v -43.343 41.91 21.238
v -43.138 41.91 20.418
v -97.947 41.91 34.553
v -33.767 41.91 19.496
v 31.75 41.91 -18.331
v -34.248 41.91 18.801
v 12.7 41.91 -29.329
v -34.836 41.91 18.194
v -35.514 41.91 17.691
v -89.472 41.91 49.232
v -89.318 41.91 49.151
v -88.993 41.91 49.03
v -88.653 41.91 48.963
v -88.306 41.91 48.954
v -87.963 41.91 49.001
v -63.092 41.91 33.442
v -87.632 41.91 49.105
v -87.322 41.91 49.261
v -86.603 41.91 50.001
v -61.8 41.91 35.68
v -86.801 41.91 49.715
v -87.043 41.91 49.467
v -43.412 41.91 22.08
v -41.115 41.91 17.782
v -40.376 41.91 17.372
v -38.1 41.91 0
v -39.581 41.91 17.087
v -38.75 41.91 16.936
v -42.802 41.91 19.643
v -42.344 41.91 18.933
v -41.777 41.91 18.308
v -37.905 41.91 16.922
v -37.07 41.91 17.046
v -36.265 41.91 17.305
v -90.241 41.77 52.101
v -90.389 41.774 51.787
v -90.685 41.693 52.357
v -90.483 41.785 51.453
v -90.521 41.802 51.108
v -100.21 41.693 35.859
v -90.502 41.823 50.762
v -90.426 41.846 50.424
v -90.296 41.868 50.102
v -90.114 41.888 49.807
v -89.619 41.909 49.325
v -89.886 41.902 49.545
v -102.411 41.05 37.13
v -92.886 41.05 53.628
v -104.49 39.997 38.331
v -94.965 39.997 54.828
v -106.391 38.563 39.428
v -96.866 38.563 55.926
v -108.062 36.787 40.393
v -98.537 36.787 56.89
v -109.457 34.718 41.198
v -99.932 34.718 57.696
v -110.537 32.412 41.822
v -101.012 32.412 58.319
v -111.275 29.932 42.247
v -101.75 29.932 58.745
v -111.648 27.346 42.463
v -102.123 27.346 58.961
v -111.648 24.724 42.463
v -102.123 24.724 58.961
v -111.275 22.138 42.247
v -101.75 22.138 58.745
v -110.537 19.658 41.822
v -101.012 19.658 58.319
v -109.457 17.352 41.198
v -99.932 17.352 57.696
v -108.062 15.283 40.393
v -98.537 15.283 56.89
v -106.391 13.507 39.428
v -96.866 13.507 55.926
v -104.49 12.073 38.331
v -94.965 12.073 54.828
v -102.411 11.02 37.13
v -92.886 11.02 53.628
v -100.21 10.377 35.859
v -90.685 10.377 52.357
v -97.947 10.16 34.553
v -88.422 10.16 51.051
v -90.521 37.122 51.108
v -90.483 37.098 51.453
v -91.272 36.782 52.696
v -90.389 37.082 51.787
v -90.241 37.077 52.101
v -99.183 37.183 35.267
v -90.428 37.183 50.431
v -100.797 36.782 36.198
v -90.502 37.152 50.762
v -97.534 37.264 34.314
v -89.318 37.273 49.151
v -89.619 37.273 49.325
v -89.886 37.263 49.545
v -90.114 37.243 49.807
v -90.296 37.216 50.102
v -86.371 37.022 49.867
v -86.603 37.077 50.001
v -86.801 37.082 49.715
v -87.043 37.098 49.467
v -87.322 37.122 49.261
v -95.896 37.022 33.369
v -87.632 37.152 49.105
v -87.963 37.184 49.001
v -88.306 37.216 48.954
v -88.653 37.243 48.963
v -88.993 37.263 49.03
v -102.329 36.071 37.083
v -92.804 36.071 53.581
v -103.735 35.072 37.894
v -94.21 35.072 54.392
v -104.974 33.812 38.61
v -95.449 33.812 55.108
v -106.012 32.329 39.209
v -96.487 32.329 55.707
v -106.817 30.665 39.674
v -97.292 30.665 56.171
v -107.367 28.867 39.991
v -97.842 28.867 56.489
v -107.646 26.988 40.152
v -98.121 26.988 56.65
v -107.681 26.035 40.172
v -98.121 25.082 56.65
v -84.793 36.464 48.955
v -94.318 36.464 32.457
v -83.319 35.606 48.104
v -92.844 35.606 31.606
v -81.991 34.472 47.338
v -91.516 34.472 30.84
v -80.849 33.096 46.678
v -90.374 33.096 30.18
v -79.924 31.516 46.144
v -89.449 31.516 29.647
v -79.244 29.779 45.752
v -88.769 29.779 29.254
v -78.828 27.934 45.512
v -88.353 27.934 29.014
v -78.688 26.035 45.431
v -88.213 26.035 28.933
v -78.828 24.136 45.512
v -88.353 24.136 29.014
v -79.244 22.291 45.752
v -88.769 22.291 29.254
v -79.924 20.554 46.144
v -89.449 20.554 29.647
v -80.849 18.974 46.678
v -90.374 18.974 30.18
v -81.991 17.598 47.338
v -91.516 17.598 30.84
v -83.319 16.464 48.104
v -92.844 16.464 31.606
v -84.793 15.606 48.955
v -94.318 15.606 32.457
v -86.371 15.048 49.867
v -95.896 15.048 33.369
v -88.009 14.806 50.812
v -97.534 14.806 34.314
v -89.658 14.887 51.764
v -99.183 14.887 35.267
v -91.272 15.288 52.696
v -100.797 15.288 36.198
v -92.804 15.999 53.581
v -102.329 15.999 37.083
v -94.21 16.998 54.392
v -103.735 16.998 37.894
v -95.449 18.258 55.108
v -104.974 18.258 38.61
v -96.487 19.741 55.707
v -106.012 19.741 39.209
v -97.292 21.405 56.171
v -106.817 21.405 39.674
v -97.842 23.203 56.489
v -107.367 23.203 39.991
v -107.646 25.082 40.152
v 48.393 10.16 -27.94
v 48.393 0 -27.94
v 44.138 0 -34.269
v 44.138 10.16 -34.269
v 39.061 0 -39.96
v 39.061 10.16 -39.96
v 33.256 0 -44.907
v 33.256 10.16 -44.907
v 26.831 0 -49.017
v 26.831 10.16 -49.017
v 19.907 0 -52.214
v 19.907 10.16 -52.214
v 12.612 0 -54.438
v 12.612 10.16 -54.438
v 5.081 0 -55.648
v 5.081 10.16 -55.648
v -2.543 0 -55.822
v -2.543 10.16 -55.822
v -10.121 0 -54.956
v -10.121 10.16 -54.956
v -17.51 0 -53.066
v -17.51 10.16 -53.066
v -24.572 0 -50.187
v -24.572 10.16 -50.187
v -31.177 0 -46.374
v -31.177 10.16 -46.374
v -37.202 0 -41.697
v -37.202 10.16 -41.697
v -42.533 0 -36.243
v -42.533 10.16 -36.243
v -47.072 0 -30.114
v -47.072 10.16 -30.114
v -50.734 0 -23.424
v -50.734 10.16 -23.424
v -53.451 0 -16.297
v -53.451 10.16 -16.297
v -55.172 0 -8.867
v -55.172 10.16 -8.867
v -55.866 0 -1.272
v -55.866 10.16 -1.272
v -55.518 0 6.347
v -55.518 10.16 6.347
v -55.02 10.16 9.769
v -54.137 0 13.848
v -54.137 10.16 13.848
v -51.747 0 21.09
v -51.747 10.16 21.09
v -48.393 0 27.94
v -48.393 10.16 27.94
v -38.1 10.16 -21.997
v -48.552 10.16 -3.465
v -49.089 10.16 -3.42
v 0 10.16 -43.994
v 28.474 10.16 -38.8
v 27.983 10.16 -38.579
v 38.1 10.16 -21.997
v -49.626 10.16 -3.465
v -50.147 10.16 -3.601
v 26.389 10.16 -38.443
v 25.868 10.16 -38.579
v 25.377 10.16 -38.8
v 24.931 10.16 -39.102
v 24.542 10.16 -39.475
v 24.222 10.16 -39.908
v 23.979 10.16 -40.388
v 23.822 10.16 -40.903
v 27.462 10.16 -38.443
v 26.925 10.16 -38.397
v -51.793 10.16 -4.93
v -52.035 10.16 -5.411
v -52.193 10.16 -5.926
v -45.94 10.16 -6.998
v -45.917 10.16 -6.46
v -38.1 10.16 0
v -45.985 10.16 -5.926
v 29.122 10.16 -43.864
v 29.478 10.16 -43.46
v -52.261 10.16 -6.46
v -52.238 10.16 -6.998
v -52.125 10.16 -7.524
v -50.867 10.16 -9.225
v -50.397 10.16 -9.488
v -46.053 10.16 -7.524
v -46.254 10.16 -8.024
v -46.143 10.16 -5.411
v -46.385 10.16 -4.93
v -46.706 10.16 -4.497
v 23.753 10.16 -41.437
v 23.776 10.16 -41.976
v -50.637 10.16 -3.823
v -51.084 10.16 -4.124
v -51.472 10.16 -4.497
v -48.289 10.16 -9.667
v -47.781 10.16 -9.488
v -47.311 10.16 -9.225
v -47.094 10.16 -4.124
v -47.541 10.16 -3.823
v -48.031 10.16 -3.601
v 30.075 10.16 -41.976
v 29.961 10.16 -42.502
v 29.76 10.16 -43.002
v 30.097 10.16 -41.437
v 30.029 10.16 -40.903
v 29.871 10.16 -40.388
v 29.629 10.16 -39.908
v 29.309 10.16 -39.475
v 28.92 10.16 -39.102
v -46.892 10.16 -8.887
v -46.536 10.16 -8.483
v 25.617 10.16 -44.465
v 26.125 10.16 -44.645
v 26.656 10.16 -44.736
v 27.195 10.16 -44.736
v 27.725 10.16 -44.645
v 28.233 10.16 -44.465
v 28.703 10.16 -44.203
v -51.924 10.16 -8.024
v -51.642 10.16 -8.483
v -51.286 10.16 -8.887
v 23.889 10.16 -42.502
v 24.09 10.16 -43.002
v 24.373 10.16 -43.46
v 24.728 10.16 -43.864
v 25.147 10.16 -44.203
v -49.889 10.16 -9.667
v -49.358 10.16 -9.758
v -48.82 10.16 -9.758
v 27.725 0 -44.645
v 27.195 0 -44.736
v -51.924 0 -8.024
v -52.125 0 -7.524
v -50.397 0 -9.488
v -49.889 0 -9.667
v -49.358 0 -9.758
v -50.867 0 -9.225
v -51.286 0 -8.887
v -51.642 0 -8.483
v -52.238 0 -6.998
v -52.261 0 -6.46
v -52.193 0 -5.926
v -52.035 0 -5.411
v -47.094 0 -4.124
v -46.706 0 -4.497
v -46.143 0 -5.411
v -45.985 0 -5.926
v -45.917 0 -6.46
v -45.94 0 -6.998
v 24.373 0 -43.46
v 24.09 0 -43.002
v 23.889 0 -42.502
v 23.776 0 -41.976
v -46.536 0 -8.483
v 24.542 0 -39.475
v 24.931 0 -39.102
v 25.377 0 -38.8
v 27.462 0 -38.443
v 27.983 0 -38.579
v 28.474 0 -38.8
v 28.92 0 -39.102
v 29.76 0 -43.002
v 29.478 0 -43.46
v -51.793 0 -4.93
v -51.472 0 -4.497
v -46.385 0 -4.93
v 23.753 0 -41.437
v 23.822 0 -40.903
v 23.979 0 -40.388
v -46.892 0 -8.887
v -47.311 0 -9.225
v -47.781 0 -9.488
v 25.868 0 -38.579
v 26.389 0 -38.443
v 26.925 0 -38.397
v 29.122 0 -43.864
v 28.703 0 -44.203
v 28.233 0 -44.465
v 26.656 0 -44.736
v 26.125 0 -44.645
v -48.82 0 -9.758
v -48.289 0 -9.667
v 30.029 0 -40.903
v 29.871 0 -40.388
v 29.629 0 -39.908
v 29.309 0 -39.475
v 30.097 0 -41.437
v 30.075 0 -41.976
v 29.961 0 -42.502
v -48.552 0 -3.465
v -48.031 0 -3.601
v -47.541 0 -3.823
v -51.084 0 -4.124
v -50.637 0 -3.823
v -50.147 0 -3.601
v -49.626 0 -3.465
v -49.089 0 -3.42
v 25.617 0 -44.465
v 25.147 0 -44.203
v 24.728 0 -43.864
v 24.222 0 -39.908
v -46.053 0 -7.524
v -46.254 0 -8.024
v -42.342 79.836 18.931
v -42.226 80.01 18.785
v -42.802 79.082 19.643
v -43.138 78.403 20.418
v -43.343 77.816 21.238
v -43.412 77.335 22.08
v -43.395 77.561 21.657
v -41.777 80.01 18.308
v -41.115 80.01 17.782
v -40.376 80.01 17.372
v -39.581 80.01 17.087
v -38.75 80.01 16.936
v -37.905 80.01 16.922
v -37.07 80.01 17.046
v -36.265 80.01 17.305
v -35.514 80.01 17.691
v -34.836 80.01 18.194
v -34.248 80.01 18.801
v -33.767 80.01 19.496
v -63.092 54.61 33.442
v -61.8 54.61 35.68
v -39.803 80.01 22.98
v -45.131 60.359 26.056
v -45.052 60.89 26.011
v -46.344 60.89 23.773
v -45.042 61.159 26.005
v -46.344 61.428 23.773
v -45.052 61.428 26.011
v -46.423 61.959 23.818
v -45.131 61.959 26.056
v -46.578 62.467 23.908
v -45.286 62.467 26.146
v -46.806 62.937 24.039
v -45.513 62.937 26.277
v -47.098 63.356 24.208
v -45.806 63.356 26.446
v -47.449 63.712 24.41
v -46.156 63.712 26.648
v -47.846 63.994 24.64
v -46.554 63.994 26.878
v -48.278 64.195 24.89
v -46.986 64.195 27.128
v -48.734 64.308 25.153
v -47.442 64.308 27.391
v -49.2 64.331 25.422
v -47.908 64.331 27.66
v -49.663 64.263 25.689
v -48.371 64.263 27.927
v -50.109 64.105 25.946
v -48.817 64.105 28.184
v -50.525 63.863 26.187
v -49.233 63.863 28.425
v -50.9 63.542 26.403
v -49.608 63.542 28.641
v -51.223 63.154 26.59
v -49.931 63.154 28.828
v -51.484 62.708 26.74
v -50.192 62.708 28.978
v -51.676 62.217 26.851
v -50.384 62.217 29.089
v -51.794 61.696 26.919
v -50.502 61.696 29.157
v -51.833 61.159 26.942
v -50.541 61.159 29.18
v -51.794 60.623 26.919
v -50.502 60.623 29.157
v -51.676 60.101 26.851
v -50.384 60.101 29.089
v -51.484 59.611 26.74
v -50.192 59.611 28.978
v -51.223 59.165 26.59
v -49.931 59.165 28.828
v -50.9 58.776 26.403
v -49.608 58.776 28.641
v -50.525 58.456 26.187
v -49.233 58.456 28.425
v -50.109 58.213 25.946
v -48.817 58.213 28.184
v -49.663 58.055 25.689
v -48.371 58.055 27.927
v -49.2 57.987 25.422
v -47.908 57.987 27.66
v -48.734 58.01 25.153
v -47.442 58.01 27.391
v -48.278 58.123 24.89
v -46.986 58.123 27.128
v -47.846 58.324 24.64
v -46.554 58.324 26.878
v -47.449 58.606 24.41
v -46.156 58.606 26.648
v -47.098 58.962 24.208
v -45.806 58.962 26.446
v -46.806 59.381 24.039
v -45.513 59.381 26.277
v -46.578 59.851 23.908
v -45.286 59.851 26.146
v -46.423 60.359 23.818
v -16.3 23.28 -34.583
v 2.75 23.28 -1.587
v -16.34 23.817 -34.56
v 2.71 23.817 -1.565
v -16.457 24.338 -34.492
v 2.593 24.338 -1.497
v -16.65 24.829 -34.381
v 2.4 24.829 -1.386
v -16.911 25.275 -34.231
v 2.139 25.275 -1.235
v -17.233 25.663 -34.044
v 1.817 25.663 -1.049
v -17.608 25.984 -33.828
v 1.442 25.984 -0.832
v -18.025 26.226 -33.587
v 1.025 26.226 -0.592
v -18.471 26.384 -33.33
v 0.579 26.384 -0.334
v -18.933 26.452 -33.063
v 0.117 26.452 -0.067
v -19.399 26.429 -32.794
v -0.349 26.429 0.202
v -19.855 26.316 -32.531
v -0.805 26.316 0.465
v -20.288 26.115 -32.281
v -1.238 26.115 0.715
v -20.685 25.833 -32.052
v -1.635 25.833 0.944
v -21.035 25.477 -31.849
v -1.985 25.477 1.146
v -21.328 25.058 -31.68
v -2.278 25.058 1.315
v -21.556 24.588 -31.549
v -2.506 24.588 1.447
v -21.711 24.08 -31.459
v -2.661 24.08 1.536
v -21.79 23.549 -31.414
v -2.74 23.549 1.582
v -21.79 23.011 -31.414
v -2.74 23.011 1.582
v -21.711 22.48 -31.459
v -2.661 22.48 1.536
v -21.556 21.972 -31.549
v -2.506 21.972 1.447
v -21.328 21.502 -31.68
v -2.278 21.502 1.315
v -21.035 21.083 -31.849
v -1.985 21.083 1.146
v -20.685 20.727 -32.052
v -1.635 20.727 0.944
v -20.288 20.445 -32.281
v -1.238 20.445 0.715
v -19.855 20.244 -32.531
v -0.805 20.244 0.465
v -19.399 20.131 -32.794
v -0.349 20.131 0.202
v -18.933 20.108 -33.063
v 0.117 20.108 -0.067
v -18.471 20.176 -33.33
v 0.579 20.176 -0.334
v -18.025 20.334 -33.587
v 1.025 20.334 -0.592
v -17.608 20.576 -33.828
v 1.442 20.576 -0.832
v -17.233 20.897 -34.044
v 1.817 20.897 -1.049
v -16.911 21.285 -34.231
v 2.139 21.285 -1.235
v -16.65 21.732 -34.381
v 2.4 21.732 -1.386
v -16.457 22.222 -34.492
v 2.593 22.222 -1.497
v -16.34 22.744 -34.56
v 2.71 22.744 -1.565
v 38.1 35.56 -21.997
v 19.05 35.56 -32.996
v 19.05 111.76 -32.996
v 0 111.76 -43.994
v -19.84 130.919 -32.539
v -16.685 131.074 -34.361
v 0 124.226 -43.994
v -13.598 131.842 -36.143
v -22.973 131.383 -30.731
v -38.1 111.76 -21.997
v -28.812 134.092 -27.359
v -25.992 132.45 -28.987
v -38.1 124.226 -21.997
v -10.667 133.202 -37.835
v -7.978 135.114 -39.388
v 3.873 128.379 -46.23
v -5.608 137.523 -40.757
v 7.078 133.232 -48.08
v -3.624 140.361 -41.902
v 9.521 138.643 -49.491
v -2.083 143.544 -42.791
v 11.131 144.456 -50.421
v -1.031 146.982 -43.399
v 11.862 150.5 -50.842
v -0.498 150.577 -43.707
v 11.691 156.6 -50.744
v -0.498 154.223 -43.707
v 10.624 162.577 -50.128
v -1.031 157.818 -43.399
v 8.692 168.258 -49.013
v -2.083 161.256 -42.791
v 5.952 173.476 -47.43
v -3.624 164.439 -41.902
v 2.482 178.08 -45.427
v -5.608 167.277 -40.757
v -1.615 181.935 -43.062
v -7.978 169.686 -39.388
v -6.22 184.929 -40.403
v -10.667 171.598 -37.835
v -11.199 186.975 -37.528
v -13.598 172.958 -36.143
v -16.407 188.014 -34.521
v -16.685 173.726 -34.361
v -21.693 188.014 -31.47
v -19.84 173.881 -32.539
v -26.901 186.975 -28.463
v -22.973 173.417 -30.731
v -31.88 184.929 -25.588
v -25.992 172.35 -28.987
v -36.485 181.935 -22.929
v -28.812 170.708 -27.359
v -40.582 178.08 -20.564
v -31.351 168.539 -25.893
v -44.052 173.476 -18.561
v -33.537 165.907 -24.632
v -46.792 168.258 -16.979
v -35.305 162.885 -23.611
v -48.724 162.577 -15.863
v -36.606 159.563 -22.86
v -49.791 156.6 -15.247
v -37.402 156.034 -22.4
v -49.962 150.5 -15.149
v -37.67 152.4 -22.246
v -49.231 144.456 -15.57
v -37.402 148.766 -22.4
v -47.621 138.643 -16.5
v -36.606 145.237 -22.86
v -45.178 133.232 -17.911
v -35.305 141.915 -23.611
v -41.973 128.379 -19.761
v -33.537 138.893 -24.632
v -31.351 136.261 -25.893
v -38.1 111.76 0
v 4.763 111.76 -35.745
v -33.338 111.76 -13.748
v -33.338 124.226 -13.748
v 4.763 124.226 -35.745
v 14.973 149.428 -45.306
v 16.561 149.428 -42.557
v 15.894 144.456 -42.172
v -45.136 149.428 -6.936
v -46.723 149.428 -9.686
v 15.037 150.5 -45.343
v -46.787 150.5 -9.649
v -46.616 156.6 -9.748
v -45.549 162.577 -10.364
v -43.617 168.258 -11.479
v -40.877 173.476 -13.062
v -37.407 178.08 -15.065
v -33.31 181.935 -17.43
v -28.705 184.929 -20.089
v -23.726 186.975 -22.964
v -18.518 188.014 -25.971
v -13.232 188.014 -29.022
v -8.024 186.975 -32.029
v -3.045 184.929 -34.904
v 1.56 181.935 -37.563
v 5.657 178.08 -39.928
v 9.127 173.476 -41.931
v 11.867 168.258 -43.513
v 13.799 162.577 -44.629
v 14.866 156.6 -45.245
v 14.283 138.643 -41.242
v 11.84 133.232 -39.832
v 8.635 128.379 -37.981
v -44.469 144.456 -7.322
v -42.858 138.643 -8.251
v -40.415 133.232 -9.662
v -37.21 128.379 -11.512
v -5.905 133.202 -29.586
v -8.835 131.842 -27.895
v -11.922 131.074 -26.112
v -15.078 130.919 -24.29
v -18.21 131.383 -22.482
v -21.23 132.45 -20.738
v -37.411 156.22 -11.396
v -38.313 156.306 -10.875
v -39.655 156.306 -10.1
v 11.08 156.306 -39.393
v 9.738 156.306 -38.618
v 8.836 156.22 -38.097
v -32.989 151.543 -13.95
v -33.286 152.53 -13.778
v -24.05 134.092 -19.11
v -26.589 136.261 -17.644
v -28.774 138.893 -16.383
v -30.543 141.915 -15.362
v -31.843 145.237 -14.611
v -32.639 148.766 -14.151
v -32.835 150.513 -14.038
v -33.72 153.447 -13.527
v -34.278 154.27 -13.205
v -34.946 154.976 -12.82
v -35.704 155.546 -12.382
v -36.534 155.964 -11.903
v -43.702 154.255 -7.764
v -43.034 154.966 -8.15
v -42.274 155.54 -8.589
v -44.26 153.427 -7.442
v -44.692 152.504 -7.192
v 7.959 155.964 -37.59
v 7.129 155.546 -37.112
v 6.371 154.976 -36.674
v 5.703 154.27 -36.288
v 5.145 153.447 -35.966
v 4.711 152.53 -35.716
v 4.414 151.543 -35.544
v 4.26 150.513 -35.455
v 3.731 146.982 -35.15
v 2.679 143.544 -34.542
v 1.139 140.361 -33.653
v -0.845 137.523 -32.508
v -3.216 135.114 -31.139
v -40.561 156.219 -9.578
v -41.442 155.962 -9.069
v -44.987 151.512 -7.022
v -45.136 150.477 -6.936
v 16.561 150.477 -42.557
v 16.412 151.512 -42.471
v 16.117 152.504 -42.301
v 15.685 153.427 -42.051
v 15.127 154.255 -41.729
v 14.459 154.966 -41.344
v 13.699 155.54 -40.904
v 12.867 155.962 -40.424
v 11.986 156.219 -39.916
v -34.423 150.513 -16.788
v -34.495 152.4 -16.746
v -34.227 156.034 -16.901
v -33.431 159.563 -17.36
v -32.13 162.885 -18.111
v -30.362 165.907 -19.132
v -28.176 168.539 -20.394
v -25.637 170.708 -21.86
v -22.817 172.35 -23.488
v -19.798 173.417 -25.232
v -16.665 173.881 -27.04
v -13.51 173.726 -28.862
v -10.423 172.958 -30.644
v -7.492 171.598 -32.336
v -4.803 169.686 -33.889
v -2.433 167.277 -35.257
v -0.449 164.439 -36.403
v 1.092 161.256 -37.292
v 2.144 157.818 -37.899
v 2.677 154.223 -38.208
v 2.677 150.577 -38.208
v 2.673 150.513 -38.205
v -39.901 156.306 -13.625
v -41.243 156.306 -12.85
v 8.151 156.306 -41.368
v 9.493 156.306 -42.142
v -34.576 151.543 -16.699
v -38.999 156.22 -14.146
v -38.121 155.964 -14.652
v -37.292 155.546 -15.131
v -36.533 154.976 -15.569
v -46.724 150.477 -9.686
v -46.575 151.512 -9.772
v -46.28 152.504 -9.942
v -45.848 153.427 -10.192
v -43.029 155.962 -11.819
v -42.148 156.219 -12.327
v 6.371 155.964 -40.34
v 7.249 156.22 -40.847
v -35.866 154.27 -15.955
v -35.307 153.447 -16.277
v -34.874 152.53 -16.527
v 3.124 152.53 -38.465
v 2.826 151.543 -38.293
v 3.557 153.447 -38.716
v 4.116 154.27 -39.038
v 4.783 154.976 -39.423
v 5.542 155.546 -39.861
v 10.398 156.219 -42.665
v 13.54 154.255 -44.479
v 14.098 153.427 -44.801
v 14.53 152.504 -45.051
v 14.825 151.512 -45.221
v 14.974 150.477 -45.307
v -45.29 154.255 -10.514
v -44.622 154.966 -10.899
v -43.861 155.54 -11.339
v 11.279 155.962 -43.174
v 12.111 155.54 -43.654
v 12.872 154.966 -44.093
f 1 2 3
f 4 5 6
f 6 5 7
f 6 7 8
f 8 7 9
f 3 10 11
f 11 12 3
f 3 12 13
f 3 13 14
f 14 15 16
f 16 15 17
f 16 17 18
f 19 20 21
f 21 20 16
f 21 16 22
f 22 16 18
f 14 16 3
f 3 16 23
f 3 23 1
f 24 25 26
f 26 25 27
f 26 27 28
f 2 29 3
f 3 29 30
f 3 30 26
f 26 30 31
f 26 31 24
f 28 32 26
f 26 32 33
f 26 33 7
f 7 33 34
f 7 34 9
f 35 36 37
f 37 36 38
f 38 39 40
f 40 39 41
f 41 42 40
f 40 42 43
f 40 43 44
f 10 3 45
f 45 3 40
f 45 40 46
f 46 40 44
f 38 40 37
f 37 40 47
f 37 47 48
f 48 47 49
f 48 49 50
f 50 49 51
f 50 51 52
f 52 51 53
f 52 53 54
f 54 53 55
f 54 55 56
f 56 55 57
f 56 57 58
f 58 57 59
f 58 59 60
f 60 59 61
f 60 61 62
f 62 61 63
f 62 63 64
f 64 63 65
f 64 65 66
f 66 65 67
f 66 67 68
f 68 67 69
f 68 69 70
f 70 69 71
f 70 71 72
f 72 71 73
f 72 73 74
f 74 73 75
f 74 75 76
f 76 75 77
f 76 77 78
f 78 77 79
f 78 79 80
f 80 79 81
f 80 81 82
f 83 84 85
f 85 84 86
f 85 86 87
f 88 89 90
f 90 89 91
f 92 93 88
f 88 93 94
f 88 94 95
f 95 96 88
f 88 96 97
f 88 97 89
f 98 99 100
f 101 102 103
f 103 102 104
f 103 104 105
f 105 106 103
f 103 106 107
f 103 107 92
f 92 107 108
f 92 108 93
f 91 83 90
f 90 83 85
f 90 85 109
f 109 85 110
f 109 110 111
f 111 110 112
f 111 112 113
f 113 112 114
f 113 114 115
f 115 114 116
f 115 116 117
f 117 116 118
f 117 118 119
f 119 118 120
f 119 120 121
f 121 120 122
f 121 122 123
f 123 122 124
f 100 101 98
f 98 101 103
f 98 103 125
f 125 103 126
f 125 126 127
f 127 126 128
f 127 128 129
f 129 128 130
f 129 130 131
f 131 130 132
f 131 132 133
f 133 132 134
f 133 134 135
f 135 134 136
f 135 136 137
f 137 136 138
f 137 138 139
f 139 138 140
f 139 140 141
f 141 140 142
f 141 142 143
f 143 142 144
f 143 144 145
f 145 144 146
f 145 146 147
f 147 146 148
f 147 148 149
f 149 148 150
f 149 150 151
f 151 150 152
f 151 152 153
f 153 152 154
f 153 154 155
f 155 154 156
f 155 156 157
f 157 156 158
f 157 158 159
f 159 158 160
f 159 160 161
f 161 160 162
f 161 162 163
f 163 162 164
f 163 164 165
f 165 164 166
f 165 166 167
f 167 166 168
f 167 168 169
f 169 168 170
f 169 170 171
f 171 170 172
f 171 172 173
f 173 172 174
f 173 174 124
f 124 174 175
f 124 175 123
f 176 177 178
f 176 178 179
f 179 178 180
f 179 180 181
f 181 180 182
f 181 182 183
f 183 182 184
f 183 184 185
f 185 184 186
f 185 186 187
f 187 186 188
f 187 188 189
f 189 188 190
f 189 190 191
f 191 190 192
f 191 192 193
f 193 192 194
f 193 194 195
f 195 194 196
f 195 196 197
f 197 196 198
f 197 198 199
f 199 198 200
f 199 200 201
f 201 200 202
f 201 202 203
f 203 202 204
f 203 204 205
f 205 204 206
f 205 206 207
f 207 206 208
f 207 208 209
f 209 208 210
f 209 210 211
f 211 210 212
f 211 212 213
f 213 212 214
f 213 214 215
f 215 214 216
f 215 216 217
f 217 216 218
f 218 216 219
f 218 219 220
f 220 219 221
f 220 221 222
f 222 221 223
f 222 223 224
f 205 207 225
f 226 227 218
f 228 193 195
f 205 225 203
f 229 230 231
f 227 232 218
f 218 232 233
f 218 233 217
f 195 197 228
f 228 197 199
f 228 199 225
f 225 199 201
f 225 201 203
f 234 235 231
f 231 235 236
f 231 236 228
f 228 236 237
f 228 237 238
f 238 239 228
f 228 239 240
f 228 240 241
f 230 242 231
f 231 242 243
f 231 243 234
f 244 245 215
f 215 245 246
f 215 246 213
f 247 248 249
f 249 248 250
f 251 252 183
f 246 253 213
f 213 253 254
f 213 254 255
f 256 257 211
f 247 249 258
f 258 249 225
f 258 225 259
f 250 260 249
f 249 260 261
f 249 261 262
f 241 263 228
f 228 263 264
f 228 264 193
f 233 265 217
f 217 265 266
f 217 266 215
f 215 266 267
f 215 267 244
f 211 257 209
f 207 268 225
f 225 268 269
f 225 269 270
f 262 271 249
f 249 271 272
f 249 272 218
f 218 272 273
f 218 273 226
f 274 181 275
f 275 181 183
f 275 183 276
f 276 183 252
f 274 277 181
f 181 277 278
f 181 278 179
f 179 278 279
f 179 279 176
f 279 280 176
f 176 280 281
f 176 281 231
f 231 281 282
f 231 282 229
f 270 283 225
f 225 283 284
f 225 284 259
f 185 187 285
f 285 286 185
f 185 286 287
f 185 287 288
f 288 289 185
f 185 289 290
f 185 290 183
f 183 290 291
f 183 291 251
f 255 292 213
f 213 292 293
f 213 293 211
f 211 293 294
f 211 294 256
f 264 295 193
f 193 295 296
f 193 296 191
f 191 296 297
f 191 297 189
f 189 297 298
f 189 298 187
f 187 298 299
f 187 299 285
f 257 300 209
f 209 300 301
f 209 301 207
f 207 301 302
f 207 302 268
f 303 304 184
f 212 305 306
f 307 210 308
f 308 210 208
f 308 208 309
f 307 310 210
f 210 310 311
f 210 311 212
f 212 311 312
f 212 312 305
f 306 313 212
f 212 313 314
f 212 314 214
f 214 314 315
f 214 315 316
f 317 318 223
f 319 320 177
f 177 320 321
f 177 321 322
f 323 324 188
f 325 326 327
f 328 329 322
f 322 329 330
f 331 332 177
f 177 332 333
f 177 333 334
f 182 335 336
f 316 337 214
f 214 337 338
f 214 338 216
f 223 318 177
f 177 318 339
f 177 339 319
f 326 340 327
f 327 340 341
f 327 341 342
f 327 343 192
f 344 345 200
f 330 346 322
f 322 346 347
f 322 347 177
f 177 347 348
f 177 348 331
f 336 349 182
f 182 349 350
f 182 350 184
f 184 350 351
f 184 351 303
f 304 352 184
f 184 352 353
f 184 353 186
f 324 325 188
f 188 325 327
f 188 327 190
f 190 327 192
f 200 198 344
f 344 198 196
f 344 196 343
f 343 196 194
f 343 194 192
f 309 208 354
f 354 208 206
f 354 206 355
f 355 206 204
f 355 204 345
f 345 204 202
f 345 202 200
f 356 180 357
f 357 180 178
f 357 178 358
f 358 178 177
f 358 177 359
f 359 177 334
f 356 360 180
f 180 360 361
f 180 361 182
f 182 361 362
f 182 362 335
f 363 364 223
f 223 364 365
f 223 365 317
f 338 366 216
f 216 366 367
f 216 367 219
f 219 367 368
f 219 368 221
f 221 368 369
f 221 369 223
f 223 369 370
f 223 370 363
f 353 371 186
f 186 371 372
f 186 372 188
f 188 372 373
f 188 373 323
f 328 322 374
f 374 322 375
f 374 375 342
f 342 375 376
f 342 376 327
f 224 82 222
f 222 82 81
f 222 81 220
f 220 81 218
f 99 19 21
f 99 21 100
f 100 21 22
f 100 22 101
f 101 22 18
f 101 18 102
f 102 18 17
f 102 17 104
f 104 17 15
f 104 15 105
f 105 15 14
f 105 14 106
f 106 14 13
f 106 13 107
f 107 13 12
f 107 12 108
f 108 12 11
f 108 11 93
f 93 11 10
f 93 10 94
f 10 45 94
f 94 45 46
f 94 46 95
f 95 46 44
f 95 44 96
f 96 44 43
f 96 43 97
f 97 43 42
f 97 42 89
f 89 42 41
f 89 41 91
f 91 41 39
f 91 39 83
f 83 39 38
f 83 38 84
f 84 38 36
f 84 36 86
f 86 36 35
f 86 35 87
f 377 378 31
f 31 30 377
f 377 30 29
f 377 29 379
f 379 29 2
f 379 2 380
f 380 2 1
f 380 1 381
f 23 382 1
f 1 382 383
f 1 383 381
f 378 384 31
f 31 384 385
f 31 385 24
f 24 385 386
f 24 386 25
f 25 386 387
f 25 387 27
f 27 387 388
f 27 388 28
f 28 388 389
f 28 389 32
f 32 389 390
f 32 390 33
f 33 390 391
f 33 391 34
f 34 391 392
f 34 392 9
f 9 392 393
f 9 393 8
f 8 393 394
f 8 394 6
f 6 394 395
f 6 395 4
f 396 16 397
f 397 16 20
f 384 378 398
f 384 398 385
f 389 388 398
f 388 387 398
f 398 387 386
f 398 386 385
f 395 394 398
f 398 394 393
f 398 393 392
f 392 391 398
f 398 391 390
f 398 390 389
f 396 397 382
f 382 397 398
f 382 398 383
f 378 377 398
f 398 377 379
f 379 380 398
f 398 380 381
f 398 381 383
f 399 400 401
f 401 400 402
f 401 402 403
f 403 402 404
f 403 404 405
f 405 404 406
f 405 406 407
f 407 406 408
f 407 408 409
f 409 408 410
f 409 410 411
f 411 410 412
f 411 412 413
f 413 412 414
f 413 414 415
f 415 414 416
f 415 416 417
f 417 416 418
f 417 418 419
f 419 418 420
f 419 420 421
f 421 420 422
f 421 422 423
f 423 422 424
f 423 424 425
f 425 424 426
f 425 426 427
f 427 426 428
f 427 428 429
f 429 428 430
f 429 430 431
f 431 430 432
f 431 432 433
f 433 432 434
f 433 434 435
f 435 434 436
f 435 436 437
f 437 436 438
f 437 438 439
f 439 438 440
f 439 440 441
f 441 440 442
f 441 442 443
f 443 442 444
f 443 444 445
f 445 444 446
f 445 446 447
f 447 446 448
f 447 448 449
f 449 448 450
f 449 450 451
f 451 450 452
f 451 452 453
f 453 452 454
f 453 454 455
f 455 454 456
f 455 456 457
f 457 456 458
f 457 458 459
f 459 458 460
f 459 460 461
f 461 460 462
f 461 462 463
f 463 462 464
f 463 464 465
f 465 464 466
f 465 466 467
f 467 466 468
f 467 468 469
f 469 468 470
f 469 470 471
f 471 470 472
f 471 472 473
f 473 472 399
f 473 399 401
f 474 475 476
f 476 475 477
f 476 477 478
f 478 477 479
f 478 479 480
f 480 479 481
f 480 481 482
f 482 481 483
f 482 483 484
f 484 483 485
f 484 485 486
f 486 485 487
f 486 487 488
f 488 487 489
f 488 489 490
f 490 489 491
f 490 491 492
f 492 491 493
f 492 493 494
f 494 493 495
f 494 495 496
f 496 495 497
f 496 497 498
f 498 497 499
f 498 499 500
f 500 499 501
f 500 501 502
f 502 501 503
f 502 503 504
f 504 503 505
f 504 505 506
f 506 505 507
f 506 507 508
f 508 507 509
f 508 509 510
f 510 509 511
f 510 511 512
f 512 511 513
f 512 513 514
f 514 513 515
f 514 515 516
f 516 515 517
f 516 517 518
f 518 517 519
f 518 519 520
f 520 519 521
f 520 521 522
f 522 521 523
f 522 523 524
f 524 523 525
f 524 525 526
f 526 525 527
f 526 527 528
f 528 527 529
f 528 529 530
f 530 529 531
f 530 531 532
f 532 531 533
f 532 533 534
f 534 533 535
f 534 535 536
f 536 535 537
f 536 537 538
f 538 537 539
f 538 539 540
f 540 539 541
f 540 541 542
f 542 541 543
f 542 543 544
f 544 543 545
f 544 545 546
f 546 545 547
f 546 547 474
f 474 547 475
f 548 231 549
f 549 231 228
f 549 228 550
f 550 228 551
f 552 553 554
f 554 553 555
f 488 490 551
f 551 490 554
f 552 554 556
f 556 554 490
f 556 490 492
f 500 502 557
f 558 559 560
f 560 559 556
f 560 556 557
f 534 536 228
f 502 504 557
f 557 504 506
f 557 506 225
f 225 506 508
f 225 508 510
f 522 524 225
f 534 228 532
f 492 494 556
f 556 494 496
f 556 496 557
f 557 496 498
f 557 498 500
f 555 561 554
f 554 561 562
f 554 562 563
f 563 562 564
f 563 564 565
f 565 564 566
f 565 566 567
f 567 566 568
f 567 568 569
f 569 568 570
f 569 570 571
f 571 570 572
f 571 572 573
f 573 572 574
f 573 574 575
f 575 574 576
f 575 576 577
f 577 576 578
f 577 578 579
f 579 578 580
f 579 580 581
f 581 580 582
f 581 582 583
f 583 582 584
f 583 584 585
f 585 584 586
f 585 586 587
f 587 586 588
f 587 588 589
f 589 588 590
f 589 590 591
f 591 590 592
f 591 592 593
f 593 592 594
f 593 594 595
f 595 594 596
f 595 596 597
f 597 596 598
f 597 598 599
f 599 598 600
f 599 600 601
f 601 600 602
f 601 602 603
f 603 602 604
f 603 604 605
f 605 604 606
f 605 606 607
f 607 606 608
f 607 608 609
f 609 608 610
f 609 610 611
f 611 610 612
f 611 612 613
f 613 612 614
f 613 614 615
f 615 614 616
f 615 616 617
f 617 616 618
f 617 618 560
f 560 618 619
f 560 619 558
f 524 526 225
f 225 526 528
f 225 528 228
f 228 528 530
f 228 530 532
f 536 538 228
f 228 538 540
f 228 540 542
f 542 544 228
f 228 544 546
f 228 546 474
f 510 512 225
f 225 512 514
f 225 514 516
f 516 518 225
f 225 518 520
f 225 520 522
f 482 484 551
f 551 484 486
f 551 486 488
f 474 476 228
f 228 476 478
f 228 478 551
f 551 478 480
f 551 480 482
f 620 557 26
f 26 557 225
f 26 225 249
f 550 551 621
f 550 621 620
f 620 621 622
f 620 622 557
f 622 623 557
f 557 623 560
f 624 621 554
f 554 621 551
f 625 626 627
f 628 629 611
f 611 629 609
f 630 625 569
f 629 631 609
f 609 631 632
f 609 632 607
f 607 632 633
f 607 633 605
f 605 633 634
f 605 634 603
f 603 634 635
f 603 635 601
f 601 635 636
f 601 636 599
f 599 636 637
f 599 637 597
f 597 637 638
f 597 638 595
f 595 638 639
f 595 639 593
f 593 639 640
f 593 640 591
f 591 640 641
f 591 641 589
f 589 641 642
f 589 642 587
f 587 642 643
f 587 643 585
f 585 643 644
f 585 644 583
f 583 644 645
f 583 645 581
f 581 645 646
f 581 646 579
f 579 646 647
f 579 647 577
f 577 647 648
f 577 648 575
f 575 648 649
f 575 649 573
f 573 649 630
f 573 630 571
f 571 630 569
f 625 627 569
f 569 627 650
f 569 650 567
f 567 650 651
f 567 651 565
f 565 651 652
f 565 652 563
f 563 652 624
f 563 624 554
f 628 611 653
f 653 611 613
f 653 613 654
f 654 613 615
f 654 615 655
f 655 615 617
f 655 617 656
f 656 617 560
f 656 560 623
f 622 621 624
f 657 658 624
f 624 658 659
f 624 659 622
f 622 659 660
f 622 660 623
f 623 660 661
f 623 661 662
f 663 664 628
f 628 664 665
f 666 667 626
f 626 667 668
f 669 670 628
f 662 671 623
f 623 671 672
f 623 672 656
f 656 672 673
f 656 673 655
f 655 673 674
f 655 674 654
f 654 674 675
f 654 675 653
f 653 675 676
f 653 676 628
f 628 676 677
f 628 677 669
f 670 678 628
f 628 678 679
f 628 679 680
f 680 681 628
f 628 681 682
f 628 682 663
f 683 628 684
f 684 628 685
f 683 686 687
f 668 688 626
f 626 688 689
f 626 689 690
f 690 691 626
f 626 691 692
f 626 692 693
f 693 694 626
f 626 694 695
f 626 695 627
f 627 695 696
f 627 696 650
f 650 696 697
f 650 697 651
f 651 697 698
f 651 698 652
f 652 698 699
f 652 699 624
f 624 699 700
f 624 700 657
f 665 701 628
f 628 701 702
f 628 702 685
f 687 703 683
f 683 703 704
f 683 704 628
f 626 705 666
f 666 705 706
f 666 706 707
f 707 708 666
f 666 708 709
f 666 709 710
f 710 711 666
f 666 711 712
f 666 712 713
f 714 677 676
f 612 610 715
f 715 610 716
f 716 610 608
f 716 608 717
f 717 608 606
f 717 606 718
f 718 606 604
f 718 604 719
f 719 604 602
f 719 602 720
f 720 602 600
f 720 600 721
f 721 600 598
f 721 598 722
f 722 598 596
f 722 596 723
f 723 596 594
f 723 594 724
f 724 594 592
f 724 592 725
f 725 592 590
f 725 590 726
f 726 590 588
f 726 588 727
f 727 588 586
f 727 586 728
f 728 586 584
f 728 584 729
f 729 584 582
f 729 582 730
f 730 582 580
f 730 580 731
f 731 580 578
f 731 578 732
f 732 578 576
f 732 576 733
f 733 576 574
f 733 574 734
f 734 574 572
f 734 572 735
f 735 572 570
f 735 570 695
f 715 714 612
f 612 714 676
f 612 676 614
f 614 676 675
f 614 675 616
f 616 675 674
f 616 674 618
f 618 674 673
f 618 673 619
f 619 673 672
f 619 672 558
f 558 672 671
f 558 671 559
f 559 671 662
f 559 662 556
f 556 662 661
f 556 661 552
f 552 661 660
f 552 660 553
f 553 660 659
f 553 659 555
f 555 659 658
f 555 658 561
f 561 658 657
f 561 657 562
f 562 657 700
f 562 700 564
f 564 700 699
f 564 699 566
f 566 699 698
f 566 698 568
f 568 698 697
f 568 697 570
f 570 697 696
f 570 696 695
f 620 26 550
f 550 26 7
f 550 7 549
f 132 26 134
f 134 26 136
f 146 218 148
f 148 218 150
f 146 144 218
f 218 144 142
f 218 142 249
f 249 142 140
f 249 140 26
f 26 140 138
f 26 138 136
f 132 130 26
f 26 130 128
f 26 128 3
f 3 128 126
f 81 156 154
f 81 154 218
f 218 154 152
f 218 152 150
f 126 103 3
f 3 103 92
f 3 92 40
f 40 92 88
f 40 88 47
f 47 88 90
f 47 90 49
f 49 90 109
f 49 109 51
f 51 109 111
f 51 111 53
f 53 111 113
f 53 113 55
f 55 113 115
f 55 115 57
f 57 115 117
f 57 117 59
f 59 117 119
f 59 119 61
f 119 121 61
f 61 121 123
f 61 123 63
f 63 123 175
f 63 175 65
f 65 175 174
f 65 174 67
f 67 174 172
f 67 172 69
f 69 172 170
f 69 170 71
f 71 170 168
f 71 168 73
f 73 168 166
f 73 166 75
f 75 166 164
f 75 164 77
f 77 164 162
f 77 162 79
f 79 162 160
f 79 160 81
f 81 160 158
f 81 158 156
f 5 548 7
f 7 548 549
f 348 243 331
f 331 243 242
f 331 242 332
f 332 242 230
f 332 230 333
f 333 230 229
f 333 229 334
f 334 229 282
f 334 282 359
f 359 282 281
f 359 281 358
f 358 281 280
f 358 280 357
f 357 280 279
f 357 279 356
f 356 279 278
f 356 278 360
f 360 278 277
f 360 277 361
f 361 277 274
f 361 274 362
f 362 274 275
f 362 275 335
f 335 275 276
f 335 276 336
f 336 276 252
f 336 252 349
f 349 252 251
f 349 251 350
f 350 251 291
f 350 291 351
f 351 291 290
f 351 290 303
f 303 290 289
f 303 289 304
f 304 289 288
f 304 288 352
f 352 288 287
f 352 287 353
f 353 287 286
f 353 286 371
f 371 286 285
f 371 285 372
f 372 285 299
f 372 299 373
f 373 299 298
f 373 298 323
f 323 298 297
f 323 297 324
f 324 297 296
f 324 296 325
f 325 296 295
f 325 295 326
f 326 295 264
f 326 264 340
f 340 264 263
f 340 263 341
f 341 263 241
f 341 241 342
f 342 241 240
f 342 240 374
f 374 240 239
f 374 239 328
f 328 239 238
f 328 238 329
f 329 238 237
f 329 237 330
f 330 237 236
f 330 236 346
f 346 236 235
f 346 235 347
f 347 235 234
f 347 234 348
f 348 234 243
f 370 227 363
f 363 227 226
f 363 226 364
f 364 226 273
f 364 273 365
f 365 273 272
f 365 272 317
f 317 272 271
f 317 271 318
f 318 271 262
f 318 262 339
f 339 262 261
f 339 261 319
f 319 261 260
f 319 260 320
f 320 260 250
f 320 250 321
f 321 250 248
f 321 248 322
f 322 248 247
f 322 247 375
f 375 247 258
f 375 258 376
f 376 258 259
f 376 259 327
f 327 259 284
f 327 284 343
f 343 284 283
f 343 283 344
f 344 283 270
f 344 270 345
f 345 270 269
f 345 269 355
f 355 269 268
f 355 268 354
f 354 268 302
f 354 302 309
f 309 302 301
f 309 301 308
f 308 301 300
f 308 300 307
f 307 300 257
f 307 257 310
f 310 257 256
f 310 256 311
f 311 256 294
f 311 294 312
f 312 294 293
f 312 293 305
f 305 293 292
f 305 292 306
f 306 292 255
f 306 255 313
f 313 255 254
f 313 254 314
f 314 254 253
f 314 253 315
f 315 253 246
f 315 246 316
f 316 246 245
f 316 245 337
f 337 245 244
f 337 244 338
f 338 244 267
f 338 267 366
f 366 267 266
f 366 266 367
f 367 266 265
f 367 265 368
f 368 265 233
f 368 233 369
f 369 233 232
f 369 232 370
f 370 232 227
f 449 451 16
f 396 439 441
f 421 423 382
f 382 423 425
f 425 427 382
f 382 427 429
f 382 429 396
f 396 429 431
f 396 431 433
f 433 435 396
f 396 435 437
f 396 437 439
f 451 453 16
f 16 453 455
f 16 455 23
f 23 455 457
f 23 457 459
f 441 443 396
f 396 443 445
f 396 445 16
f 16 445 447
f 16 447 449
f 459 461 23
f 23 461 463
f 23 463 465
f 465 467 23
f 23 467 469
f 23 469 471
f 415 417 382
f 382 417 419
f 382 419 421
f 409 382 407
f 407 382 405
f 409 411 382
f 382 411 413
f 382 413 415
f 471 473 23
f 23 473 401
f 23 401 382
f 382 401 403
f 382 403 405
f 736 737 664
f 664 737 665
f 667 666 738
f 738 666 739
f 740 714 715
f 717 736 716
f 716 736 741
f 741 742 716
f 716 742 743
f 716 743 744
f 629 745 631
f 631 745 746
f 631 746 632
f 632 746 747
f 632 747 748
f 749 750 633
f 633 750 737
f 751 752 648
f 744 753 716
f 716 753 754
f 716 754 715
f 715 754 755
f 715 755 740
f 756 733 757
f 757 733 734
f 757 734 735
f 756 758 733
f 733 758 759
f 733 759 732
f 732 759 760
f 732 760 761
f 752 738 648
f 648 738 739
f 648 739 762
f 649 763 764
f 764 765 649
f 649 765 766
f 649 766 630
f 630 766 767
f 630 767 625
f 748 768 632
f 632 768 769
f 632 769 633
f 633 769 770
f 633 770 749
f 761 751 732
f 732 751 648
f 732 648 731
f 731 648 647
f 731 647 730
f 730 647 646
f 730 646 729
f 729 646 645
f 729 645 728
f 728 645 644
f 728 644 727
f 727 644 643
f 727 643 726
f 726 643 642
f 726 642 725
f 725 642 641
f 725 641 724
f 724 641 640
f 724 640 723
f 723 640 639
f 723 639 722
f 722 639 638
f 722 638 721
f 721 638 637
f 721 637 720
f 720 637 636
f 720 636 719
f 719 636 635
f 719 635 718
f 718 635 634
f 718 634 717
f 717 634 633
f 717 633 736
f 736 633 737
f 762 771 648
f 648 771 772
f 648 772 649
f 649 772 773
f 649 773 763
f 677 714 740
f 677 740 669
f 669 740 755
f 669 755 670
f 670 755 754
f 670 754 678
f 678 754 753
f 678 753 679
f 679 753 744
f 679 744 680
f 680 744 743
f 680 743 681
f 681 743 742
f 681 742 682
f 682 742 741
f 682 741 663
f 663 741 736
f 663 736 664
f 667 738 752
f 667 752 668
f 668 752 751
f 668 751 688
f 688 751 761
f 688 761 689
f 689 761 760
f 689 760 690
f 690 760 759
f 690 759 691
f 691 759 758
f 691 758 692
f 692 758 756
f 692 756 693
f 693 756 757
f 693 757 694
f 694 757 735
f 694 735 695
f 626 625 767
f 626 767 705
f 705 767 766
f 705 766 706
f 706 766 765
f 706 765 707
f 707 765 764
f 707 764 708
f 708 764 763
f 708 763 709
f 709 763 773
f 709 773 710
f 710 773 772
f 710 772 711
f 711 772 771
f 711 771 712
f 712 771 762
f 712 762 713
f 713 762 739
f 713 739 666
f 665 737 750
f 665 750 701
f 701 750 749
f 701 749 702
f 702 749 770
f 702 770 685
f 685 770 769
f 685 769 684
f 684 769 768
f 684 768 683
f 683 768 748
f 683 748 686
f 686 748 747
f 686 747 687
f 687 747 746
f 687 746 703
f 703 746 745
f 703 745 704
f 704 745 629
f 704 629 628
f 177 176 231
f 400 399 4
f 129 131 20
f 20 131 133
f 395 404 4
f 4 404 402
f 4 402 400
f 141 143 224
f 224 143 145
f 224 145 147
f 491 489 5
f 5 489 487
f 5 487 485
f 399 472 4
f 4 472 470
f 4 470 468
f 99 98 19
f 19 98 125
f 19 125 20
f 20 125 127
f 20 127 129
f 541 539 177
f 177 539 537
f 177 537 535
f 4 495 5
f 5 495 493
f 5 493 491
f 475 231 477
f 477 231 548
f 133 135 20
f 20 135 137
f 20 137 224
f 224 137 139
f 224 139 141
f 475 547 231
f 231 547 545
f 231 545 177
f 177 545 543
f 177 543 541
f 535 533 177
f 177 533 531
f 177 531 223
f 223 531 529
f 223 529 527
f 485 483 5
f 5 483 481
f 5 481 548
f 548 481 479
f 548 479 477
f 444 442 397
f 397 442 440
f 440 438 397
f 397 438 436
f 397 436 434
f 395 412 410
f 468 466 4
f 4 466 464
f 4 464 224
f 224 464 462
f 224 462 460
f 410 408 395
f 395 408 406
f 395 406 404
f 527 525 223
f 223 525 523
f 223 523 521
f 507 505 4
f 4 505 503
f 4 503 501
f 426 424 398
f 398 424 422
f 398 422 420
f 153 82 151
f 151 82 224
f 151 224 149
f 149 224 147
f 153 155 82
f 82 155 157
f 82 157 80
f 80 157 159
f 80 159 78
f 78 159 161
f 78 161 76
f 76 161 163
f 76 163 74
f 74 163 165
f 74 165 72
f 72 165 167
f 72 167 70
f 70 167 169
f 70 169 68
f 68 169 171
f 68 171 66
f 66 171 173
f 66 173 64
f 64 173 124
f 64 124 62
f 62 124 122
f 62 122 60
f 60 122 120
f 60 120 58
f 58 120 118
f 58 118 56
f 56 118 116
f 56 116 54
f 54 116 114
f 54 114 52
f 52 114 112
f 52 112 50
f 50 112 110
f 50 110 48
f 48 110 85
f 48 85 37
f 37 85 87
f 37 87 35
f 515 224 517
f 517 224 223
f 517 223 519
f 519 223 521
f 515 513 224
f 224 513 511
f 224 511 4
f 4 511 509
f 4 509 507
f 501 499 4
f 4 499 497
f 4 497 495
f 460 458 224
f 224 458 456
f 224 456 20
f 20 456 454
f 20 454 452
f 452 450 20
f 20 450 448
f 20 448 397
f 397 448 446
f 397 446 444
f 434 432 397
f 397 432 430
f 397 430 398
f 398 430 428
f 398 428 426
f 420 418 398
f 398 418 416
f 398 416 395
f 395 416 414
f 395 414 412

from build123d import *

# Parameters (mm, degrees)
SKETCH4_R            = 55.88
BOSS_EXTRUDE2_DEPTH  = 10.16
BOSS_EXTRUDE4_DEPTH  = 101.6
BOSS_EXTRUDE5_DEPTH  = 9.525
BOSS_EXTRUDE6_START  = -9.525
BOSS_EXTRUDE6_DEPTH  = 9.525
CUT_EXTRUDE4_REACH   = 223.16
SKETCH12_R           = 21.5
SKETCH13_W           = 38.1
SKETCH13_H           = 69.85
CUT_EXTRUDE5_DEPTH   = 76.2
BOSS_EXTRUDE10_DEPTH = 19.05
SKETCH28_R           = 11.2395
CUT_EXTRUDE9_DEPTH   = 38.1
CUT_EXTRUDE10_DEPTH  = 7.366
CHAMFER1_SIZE        = 6.35
SKETCH30_R           = 2.1
CUT_EXTRUDE11_DEPTH  = 7.366
SKETCH31_R           = 3.175
CUT_EXTRUDE12_DEPTH  = 223.900333216
BOSS_EXTRUDE11_DEPTH = 38.1
CHAMFER2_SIZE        = 25.4
CUT_EXTRUDE13_REACH  = 233.204
SKETCH34_R           = 3.175
SKETCH35_R           = 3.175
CUT_EXTRUDE14_DEPTH  = 246.746626534
SKETCH36_W           = 63.5
SKETCH36_H           = 36.709955102
CUT_EXTRUDE15_DEPTH  = 63.5
FILLET1_R            = 6.35
SKETCH37_W           = 210.742334846
SKETCH37_H           = 201.224939079
CUT_EXTRUDE16_DEPTH  = 232.093968202


with BuildPart() as part:
    # Sketch4 → Boss-Extrude2 (new body)
    with BuildSketch(Plane(origin=(0, 0, 0), x_dir=(1, 0, 0), z_dir=(0, 1, 0))):
        with Locations(Location((0, 0, 0), (0, 0, 270))):
            Circle(SKETCH4_R)
    extrude(amount=BOSS_EXTRUDE2_DEPTH)

    # Sketch8 → Boss-Extrude4 (add)
    with BuildSketch(Plane(origin=(0, 10.16, 0), x_dir=(1, 0, 0), z_dir=(0, 1, 0))):
        Polygon((0, 43.994090512), (-38.1, 21.997045256), (-38.1, -21.997045256), (0, -43.994090512), (38.1, -21.997045256), (38.1, 21.997045256), align=None)
    extrude(amount=BOSS_EXTRUDE4_DEPTH)

    # Sketch9 → Boss-Extrude5 (add)
    with BuildSketch(Plane(origin=(-19.05, 0, -32.995567884), x_dir=(-0.8660254037844386, 0, 0.5000000000000003), z_dir=(-0.5000000000000002, 0, -0.8660254037844385))):
        with BuildLine():
            Line((21.997045256, 111.76), (-21.997045256, 111.76))
            Line((-21.997045256, 111.76), (-21.997045256, 124.225996336))
            ThreePointArc((-21.997045256, 124.225996336), (0, 188.144153123), (21.997045256, 124.225996336))
            Line((21.997045256, 124.225996336), (21.997045256, 111.76))
        make_face()
    extrude(amount=-BOSS_EXTRUDE5_DEPTH)

    # Sketch10 → Boss-Extrude6 (add)
    with BuildSketch(Plane(origin=(19.05, 0, 32.995567884), x_dir=(0.8660254037844386, 0, -0.5000000000000001), z_dir=(0.5000000000000001, 0, 0.8660254037844386)).offset(BOSS_EXTRUDE6_START)):
        with BuildLine():
            Line((-21.997045256, 111.76), (21.997045256, 111.76))
            Line((21.997045256, 111.76), (21.997045256, 124.225996336))
            ThreePointArc((21.997045256, 124.225996336), (0, 188.144153123), (-21.997045256, 124.225996336))
            Line((-21.997045256, 124.225996336), (-21.997045256, 111.76))
        make_face()
    extrude(amount=BOSS_EXTRUDE6_DEPTH)

    # Cut-Extrude4: up to this face of the body (flat: up to its plane)
    cut_extrude4_end = Plane(part.part.faces().sort_by_distance((19.05, 104.643172711, 32.995567884))[0])
    # Sketch12 → Cut-Extrude4 (cut, up to the picked face)
    with BuildSketch(Plane(origin=(-19.05, 0, -32.995567884), x_dir=(-0.8660254037844386, 0, 0.5000000000000003), z_dir=(-0.5000000000000002, 0, -0.8660254037844385)), mode=Mode.PRIVATE) as cut_extrude4_sk1:
        with Locations((0, 152.4)):
            Circle(SKETCH12_R)
    cut_extrude4_tool1 = split(extrude(cut_extrude4_sk1.sketch, amount=-CUT_EXTRUDE4_REACH, mode=Mode.PRIVATE), bisect_by=cut_extrude4_end, keep=Keep.BOTH, mode=Mode.PRIVATE)
    add(cut_extrude4_tool1.solids().sort_by(Axis((-19.05, 152.4, -32.995568), (0.5000000000000002, 0, 0.8660254037844385)))[0], mode=Mode.SUBTRACT)

    # Sketch13 → Cut-Extrude5 (cut, symmetric)
    with BuildSketch(Plane(origin=(-19.05, 0, 10.998522628), x_dir=(0.5000000000000002, 0, 0.8660254037844386), z_dir=(-0.8660254037844385, 0, 0.5000000000000001))):
        with Locations((0, 76.835)):
            Rectangle(SKETCH13_W, SKETCH13_H)
    extrude(amount=CUT_EXTRUDE5_DEPTH, both=True, mode=Mode.SUBTRACT)

    # Sketch22 → Boss-Extrude10 (add, symmetric)
    with BuildSketch(Plane(origin=(0, 0, 0), x_dir=(-0.8660254037844386, 0, 0.5000000000000001), z_dir=(-0.5000000000000001, 0, -0.8660254037844386))):
        with BuildLine():
            Line((43.994090512, 41.91), (102.10102108, 41.91))
            ThreePointArc((102.10102108, 41.91), (117.97602108, 26.035), (102.10102108, 10.16))
            Line((102.10102108, 10.16), (43.994090512, 10.16))
            Line((43.994090512, 10.16), (21.997045256, 10.16))
            Line((21.997045256, 10.16), (21.997045256, 41.91))
            Line((21.997045256, 41.91), (43.994090512, 41.91))
        make_face()
    extrude(amount=BOSS_EXTRUDE10_DEPTH, both=True)

    # Sketch28 → Cut-Extrude9 (cut)
    with BuildSketch(Plane(origin=(9.525, 0, 16.497783942), x_dir=(0.8660254037844386, 0, -0.5000000000000001), z_dir=(0.5000000000000001, 0, 0.8660254037844386))):
        with Locations((-102.10102108, 26.035)):
            Circle(SKETCH28_R)
    extrude(amount=-CUT_EXTRUDE9_DEPTH, mode=Mode.SUBTRACT)

    # Sketch29 → Cut-Extrude10 (cut)
    with BuildSketch(Plane(origin=(9.525, 0, 16.497783942), x_dir=(0.8660254037844386, 0, -0.5000000000000001), z_dir=(0.5000000000000001, 0, 0.8660254037844386))):
        with BuildLine():
            Line((-115.737415068, 17.907), (-109.863879848, 17.907))
            ThreePointArc((-109.863879848, 17.907), (-113.34052108, 26.035), (-109.863879848, 34.163))
            Line((-109.863879848, 34.163), (-115.737415068, 34.163))
            ThreePointArc((-115.737415068, 34.163), (-117.97602108, 26.035), (-115.737415068, 17.907))
        make_face()
    extrude(amount=-CUT_EXTRUDE10_DEPTH, mode=Mode.SUBTRACT)

    # Chamfer1
    chamfer1_edges = [part.edges().sort_by_distance(p)[0] for p in [
        (38.1, 41.91, -10.998522628),
        (28.575, 41.91, -27.49630657),
    ]]
    chamfer(chamfer1_edges, length=CHAMFER1_SIZE)

    # Sketch30 → Cut-Extrude11 (cut)
    with BuildSketch(Plane(origin=(0, 41.91, 0), x_dir=(1, 0, 0), z_dir=(0, 1, 0))):
        with Locations(Location((-88.422078008, -51.05051054, 0), (0, 0, 270))):
            Circle(SKETCH30_R)
    extrude(amount=-CUT_EXTRUDE11_DEPTH, mode=Mode.SUBTRACT)

    # Sketch31 → Cut-Extrude12 (cut, through all)
    with BuildSketch(Plane(origin=(0, 10.16, 0), x_dir=(1, 0, 0), z_dir=(0, 1, 0))):
        with Locations(Location((-49.089000823, 6.594762938, 0), (0, 0, 270))):
            Circle(SKETCH31_R)
        with Locations(Location((26.925278647, 41.57222955, 0), (0, 0, 270))):
            Circle(SKETCH31_R)
    cut_extrude12 = extrude(amount=-CUT_EXTRUDE12_DEPTH, mode=Mode.SUBTRACT)

    # Mirror1: Cut-Extrude12 across plane
    add(cut_extrude12.mirror(Plane(origin=(0, 0, 0), x_dir=(-0.8660254037844386, 0, 0.5000000000000001), z_dir=(-0.5000000000000001, 0, -0.8660254037844386))), mode=Mode.SUBTRACT)

    # Sketch33 → Boss-Extrude11 (add)
    with BuildSketch(Plane(origin=(0, 41.91, 0), x_dir=(1, 0, 0), z_dir=(0, 1, 0))):
        with BuildLine():
            Line((-43.411916389, -22.079834386), (-63.092428819, -33.442383535))
            Line((-63.092428819, -33.442383535), (-61.800298466, -35.680418955))
            Line((-61.800298466, -35.680418955), (-60.542722832, -37.858603849))
            Line((-60.542722832, -37.858603849), (-40.91541904, -26.504074545))
            ThreePointArc((-40.91541904, -26.504074545), (-33.742060338, -19.539834386), (-43.411916389, -22.079834386))
        make_face()
    extrude(amount=BOSS_EXTRUDE11_DEPTH)

    # Chamfer2
    chamfer2_edges = [part.edges().sort_by_distance(p)[0] for p in [
        (-61.817575825, 80.01, 35.650493692),
    ]]
    chamfer(chamfer2_edges, length=CHAMFER2_SIZE)

    # Cut-Extrude13: up to this plane
    cut_extrude13_end = Plane(origin=(-60.542722832, 80.01, 37.858603849), z_dir=(-0.500750644235671, 0, -0.8655915851587056))
    # Sketch34 → Cut-Extrude13 (cut, up to the surface)
    with BuildSketch(Plane(origin=(-1.292130352, 0, -2.23803542), x_dir=(-0.8660254037844386, 0, 0.5000000000000003), z_dir=(-0.5000000000000002, 0, -0.8660254037844385)), mode=Mode.PRIVATE) as cut_extrude13_sk1:
        with Locations((55.184849848, 61.159110234)):
            Circle(SKETCH34_R)
    cut_extrude13_tool1 = split(extrude(cut_extrude13_sk1.sketch, amount=-CUT_EXTRUDE13_REACH, mode=Mode.PRIVATE), bisect_by=cut_extrude13_end, keep=Keep.BOTH, mode=Mode.PRIVATE)
    add(cut_extrude13_tool1.solids().sort_by_distance((-49.083612, 61.15911, 25.35439))[0], mode=Mode.SUBTRACT)

    # Sketch35 → Cut-Extrude14 (cut, through all)
    with BuildSketch(Plane(origin=(19.05, 0, 32.995567884), x_dir=(0.8660254037844386, 0, -0.5000000000000001), z_dir=(0.5000000000000001, 0, 0.8660254037844386))):
        with Locations((0, 23.280078313)):
            Circle(SKETCH35_R)
    extrude(amount=-CUT_EXTRUDE14_DEPTH, mode=Mode.SUBTRACT)

    # Sketch36 → Cut-Extrude15 (cut, symmetric)
    with BuildSketch(Plane(origin=(-19.05, 0, 10.998522628), x_dir=(0.5000000000000004, 0, 0.8660254037844384), z_dir=(-0.8660254037844384, 0, 0.5000000000000004))):
        with Locations((0, 174.660846527)):
            Rectangle(SKETCH36_W, SKETCH36_H)
    extrude(amount=CUT_EXTRUDE15_DEPTH, both=True, mode=Mode.SUBTRACT)

    # Fillet1
    # the kernel refuses this fillet: 6.35 mm, written as the material it takes off along each edge
    with BuildSketch(Plane(origin=(12.272597523, 156.305868976, -21.027711652), x_dir=(0.04103819462533737, -0.9988766133891899, -0.023693412713994805), z_dir=(-0.5000000000000003, 0, -0.8660254037844386))) as fillet1_piece_1:
        with BuildLine():
            CenterArc((6.655634068, -6.291985478), FILLET1_R, 97.750867839, 84.965214409)
            Line((0.312767573, -6.592891819), (0, 0))
            ThreePointArc((0, 0), (2.899617679, -0.196427123), (5.799235358, 0))
        make_face()
    extrude(amount=19.675766287, mode=Mode.SUBTRACT)
    with BuildSketch(Plane(origin=(-24.346831236, 156.305868976, 0.114525399), x_dir=(-0.04103819462533767, -0.9988766133891899, 0.023693412713994975), z_dir=(-0.5000000000000003, 0, -0.8660254037844386))) as fillet1_piece_2:
        with BuildLine():
            CenterArc((6.655634068, 6.291985478), FILLET1_R, 177.283917752, 84.965214409)
            Line((0.312767573, 6.592891819), (0, 0))
            ThreePointArc((0, 0), (2.899617679, 0.196427123), (5.799235358, 0))
        make_face()
    extrude(amount=19.675766287, mode=Mode.SUBTRACT)
    with BuildSketch(Plane(origin=(-14.894977291, 156.305868976, 45.261361242), x_dir=(-0.011364190914464473, -0.999913899736612, 0.0065611186835884), z_dir=(-0.5000000000000002, 0, -0.8660254037844386)), Plane(origin=(-36.459231913, 156.305868976, 7.91097661), x_dir=(-0.011364190914463116, -0.999913899736612, 0.0065611186835876165), z_dir=(-0.5000000000000002, 0, -0.8660254037844386))) as fillet1_piece_3:
        with BuildLine():
            CenterArc((6.26760006, -6.320536654), FILLET1_R, 84.478464497, 94.769665105)
            Line((-0.081853204, -6.237210446), (0, 0))
            ThreePointArc((0, 0), (3.439298151, 0.165849191), (6.878596303, 0))
        make_face()
    extrude(amount=20.371490756, mode=Mode.SUBTRACT)
    with BuildSketch(Plane(origin=(25.080722669, 156.305868976, -27.619132734), x_dir=(0.011364190914465366, -0.999913899736612, -0.00656111868358885), z_dir=(-0.5000000000000002, 0, -0.8660254037844386)), Plane(origin=(46.644977291, 156.305868976, 9.731251898), x_dir=(0.011364190914466365, -0.999913899736612, -0.006561118683589426), z_dir=(-0.5000000000000002, 0, -0.8660254037844386))) as fillet1_piece_4:
        with BuildLine():
            CenterArc((6.26760006, 6.320536654), FILLET1_R, 180.751870398, 94.769665105)
            Line((-0.081853204, 6.237210446), (0, 0))
            ThreePointArc((0, 0), (3.439298151, -0.165849191), (6.878596303, 0))
        make_face()
    extrude(amount=20.371490756, mode=Mode.SUBTRACT)

    # Sketch37 → Cut-Extrude16 (cut, through all)
    with BuildSketch(Plane(origin=(0, 0, 0), x_dir=(-0.8660254037844386, 0, 0.5000000000000001), z_dir=(-0.5000000000000001, 0, -0.8660254037844386))):
        with Locations((30.487295463, 97.29801522)):
            Rectangle(SKETCH37_W, SKETCH37_H)
    extrude(amount=-CUT_EXTRUDE16_DEPTH, mode=Mode.SUBTRACT)


solid = part.part
